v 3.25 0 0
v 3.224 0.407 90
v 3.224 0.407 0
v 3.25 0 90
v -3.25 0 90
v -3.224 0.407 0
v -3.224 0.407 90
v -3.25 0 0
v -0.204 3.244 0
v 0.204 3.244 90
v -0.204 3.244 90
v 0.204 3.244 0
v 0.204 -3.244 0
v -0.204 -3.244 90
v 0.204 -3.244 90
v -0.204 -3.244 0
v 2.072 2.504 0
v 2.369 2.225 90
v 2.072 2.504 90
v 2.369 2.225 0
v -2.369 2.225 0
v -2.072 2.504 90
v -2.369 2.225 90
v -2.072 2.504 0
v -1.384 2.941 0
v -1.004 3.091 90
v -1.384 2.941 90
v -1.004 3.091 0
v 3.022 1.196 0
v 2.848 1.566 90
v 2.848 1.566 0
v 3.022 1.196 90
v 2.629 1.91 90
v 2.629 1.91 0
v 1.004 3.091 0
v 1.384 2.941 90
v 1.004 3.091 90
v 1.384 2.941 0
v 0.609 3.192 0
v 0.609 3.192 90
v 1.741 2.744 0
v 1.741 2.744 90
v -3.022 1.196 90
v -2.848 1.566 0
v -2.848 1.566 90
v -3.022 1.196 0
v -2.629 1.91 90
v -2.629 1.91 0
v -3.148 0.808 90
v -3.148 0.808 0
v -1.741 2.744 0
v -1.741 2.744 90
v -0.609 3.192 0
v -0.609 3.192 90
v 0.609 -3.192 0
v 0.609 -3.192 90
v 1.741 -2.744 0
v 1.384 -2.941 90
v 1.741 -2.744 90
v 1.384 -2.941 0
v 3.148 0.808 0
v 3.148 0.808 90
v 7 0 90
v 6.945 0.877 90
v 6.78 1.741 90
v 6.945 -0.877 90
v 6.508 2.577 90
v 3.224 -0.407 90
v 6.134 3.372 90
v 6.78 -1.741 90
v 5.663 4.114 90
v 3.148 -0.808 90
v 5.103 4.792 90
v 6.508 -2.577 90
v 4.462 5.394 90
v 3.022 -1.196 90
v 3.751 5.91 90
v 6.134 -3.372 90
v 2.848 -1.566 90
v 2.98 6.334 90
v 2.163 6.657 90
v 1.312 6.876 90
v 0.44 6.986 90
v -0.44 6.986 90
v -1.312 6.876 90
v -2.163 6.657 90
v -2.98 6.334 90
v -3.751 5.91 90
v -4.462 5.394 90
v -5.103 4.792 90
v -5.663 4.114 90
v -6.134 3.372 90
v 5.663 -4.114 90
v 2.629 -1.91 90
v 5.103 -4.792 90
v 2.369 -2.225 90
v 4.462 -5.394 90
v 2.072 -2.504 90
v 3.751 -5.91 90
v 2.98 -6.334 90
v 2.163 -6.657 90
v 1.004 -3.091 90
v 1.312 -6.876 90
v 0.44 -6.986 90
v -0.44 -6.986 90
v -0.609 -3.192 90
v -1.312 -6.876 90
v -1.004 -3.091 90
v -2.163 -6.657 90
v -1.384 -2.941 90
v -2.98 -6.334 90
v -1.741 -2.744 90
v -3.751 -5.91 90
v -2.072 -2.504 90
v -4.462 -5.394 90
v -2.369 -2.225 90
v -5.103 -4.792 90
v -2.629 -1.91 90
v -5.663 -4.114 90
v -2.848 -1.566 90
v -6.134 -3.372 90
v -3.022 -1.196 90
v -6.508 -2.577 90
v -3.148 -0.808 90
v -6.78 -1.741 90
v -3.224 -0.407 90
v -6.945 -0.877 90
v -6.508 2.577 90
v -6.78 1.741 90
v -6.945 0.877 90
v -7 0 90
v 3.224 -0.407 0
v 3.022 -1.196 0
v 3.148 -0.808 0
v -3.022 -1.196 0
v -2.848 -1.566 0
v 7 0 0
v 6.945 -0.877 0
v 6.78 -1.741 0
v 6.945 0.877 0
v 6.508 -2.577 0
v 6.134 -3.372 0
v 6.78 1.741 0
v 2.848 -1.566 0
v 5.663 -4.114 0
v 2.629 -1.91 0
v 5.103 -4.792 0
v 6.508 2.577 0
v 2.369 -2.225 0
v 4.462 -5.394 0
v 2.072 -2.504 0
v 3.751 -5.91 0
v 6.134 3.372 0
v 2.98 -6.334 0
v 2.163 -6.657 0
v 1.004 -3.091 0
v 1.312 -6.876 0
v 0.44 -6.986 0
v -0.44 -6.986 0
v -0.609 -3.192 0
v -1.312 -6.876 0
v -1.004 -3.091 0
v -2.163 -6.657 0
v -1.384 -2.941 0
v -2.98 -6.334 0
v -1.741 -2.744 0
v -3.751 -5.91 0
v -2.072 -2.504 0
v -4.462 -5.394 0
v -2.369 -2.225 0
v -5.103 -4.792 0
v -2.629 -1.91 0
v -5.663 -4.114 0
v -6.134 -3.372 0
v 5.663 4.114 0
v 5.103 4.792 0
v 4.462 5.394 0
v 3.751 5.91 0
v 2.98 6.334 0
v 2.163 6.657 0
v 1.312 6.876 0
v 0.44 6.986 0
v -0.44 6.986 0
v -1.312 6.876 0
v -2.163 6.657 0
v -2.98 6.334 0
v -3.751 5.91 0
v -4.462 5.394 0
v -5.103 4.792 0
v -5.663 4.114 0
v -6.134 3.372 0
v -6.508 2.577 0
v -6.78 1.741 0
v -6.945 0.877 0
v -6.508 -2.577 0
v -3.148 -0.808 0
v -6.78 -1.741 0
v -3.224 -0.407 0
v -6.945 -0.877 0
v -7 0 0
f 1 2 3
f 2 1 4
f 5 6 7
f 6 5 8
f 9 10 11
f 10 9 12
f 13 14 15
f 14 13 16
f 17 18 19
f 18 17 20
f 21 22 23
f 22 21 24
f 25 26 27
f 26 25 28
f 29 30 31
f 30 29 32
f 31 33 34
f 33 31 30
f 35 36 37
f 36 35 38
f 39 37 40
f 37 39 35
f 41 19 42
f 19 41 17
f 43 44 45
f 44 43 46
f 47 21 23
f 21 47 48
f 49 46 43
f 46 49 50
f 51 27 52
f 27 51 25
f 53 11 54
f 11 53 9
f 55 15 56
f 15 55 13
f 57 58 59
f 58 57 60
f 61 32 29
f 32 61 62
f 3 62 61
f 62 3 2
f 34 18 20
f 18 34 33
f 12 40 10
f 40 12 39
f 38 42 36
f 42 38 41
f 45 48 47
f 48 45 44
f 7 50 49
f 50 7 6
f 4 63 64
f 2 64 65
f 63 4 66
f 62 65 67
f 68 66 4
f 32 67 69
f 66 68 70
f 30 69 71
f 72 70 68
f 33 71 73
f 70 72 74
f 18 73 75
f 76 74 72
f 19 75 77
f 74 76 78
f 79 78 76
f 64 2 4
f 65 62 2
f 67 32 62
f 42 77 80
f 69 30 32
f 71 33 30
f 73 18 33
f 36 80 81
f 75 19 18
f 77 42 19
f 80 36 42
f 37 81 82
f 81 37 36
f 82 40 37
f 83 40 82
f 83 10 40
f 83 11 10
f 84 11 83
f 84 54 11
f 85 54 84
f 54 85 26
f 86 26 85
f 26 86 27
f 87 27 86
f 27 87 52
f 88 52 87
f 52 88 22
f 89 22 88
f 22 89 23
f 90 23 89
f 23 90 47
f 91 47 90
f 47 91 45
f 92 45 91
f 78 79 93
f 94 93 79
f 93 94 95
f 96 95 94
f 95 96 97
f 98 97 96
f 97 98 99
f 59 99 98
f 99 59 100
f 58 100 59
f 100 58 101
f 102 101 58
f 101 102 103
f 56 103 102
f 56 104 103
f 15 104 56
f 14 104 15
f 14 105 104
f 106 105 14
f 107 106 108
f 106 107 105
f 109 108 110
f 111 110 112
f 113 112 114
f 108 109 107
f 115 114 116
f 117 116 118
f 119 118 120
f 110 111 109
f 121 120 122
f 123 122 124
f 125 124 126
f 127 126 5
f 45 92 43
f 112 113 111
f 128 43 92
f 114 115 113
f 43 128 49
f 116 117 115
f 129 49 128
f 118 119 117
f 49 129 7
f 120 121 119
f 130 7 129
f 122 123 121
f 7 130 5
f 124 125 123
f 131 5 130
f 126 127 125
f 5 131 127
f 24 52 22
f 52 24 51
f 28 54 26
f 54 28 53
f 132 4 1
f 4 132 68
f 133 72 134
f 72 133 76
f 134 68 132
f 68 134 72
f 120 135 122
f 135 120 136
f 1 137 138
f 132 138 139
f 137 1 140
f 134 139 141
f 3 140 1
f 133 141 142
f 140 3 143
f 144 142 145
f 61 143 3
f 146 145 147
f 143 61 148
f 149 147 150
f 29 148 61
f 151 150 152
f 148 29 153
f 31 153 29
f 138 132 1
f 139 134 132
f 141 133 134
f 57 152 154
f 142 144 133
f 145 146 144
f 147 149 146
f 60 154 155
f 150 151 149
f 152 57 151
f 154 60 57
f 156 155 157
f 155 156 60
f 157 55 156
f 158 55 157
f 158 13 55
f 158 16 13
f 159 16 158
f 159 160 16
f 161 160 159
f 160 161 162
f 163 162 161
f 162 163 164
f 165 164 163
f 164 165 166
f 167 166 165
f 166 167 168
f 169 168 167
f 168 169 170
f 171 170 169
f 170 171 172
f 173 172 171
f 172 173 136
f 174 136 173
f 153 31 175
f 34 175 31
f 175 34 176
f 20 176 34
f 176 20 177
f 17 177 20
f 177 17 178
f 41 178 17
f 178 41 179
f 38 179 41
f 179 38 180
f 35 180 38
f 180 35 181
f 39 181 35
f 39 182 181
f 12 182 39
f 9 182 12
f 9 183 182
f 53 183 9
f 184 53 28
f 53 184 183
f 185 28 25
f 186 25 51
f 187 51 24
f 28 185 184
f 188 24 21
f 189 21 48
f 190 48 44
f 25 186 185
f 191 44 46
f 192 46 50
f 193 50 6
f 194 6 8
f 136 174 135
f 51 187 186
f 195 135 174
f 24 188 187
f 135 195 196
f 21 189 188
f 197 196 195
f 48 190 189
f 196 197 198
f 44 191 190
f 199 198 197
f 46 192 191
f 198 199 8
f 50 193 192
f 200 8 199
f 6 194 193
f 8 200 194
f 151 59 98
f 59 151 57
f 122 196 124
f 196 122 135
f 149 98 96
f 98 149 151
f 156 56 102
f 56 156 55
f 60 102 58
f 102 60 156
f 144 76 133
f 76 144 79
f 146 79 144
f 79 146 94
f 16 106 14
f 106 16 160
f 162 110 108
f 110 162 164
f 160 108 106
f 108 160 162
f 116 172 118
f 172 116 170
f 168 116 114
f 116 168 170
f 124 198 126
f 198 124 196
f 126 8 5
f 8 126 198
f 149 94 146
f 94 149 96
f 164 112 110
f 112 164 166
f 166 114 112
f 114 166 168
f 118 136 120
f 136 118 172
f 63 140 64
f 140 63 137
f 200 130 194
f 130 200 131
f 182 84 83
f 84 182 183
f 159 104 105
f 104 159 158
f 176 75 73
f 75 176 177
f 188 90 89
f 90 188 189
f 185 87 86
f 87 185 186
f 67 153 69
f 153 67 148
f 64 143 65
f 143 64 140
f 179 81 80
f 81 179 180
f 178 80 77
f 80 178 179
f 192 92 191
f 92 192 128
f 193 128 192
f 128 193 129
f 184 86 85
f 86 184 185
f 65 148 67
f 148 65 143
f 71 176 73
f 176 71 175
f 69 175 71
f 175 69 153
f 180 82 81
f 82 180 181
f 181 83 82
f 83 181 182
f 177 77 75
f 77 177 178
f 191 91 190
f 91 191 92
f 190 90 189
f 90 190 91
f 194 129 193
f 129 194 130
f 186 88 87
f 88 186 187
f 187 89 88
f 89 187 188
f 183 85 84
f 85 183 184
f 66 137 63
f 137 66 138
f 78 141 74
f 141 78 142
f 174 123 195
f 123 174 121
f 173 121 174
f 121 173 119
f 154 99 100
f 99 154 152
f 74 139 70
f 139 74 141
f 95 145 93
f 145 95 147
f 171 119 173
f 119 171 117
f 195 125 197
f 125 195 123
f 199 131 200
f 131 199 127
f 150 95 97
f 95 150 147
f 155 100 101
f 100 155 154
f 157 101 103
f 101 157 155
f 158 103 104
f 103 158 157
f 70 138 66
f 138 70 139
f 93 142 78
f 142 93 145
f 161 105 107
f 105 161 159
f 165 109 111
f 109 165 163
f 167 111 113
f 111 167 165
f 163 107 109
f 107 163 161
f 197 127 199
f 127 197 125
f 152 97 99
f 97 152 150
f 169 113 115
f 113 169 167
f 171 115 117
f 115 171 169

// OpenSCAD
$fn = 50;


difference() {
	union() {
		cylinder(h = 90, r = 7.0000000000);
	}
	union() {
		translate(v = [0, 0, -100]) {
			cylinder(h = 200, r = 3.2500000000);
		}
	}
}
